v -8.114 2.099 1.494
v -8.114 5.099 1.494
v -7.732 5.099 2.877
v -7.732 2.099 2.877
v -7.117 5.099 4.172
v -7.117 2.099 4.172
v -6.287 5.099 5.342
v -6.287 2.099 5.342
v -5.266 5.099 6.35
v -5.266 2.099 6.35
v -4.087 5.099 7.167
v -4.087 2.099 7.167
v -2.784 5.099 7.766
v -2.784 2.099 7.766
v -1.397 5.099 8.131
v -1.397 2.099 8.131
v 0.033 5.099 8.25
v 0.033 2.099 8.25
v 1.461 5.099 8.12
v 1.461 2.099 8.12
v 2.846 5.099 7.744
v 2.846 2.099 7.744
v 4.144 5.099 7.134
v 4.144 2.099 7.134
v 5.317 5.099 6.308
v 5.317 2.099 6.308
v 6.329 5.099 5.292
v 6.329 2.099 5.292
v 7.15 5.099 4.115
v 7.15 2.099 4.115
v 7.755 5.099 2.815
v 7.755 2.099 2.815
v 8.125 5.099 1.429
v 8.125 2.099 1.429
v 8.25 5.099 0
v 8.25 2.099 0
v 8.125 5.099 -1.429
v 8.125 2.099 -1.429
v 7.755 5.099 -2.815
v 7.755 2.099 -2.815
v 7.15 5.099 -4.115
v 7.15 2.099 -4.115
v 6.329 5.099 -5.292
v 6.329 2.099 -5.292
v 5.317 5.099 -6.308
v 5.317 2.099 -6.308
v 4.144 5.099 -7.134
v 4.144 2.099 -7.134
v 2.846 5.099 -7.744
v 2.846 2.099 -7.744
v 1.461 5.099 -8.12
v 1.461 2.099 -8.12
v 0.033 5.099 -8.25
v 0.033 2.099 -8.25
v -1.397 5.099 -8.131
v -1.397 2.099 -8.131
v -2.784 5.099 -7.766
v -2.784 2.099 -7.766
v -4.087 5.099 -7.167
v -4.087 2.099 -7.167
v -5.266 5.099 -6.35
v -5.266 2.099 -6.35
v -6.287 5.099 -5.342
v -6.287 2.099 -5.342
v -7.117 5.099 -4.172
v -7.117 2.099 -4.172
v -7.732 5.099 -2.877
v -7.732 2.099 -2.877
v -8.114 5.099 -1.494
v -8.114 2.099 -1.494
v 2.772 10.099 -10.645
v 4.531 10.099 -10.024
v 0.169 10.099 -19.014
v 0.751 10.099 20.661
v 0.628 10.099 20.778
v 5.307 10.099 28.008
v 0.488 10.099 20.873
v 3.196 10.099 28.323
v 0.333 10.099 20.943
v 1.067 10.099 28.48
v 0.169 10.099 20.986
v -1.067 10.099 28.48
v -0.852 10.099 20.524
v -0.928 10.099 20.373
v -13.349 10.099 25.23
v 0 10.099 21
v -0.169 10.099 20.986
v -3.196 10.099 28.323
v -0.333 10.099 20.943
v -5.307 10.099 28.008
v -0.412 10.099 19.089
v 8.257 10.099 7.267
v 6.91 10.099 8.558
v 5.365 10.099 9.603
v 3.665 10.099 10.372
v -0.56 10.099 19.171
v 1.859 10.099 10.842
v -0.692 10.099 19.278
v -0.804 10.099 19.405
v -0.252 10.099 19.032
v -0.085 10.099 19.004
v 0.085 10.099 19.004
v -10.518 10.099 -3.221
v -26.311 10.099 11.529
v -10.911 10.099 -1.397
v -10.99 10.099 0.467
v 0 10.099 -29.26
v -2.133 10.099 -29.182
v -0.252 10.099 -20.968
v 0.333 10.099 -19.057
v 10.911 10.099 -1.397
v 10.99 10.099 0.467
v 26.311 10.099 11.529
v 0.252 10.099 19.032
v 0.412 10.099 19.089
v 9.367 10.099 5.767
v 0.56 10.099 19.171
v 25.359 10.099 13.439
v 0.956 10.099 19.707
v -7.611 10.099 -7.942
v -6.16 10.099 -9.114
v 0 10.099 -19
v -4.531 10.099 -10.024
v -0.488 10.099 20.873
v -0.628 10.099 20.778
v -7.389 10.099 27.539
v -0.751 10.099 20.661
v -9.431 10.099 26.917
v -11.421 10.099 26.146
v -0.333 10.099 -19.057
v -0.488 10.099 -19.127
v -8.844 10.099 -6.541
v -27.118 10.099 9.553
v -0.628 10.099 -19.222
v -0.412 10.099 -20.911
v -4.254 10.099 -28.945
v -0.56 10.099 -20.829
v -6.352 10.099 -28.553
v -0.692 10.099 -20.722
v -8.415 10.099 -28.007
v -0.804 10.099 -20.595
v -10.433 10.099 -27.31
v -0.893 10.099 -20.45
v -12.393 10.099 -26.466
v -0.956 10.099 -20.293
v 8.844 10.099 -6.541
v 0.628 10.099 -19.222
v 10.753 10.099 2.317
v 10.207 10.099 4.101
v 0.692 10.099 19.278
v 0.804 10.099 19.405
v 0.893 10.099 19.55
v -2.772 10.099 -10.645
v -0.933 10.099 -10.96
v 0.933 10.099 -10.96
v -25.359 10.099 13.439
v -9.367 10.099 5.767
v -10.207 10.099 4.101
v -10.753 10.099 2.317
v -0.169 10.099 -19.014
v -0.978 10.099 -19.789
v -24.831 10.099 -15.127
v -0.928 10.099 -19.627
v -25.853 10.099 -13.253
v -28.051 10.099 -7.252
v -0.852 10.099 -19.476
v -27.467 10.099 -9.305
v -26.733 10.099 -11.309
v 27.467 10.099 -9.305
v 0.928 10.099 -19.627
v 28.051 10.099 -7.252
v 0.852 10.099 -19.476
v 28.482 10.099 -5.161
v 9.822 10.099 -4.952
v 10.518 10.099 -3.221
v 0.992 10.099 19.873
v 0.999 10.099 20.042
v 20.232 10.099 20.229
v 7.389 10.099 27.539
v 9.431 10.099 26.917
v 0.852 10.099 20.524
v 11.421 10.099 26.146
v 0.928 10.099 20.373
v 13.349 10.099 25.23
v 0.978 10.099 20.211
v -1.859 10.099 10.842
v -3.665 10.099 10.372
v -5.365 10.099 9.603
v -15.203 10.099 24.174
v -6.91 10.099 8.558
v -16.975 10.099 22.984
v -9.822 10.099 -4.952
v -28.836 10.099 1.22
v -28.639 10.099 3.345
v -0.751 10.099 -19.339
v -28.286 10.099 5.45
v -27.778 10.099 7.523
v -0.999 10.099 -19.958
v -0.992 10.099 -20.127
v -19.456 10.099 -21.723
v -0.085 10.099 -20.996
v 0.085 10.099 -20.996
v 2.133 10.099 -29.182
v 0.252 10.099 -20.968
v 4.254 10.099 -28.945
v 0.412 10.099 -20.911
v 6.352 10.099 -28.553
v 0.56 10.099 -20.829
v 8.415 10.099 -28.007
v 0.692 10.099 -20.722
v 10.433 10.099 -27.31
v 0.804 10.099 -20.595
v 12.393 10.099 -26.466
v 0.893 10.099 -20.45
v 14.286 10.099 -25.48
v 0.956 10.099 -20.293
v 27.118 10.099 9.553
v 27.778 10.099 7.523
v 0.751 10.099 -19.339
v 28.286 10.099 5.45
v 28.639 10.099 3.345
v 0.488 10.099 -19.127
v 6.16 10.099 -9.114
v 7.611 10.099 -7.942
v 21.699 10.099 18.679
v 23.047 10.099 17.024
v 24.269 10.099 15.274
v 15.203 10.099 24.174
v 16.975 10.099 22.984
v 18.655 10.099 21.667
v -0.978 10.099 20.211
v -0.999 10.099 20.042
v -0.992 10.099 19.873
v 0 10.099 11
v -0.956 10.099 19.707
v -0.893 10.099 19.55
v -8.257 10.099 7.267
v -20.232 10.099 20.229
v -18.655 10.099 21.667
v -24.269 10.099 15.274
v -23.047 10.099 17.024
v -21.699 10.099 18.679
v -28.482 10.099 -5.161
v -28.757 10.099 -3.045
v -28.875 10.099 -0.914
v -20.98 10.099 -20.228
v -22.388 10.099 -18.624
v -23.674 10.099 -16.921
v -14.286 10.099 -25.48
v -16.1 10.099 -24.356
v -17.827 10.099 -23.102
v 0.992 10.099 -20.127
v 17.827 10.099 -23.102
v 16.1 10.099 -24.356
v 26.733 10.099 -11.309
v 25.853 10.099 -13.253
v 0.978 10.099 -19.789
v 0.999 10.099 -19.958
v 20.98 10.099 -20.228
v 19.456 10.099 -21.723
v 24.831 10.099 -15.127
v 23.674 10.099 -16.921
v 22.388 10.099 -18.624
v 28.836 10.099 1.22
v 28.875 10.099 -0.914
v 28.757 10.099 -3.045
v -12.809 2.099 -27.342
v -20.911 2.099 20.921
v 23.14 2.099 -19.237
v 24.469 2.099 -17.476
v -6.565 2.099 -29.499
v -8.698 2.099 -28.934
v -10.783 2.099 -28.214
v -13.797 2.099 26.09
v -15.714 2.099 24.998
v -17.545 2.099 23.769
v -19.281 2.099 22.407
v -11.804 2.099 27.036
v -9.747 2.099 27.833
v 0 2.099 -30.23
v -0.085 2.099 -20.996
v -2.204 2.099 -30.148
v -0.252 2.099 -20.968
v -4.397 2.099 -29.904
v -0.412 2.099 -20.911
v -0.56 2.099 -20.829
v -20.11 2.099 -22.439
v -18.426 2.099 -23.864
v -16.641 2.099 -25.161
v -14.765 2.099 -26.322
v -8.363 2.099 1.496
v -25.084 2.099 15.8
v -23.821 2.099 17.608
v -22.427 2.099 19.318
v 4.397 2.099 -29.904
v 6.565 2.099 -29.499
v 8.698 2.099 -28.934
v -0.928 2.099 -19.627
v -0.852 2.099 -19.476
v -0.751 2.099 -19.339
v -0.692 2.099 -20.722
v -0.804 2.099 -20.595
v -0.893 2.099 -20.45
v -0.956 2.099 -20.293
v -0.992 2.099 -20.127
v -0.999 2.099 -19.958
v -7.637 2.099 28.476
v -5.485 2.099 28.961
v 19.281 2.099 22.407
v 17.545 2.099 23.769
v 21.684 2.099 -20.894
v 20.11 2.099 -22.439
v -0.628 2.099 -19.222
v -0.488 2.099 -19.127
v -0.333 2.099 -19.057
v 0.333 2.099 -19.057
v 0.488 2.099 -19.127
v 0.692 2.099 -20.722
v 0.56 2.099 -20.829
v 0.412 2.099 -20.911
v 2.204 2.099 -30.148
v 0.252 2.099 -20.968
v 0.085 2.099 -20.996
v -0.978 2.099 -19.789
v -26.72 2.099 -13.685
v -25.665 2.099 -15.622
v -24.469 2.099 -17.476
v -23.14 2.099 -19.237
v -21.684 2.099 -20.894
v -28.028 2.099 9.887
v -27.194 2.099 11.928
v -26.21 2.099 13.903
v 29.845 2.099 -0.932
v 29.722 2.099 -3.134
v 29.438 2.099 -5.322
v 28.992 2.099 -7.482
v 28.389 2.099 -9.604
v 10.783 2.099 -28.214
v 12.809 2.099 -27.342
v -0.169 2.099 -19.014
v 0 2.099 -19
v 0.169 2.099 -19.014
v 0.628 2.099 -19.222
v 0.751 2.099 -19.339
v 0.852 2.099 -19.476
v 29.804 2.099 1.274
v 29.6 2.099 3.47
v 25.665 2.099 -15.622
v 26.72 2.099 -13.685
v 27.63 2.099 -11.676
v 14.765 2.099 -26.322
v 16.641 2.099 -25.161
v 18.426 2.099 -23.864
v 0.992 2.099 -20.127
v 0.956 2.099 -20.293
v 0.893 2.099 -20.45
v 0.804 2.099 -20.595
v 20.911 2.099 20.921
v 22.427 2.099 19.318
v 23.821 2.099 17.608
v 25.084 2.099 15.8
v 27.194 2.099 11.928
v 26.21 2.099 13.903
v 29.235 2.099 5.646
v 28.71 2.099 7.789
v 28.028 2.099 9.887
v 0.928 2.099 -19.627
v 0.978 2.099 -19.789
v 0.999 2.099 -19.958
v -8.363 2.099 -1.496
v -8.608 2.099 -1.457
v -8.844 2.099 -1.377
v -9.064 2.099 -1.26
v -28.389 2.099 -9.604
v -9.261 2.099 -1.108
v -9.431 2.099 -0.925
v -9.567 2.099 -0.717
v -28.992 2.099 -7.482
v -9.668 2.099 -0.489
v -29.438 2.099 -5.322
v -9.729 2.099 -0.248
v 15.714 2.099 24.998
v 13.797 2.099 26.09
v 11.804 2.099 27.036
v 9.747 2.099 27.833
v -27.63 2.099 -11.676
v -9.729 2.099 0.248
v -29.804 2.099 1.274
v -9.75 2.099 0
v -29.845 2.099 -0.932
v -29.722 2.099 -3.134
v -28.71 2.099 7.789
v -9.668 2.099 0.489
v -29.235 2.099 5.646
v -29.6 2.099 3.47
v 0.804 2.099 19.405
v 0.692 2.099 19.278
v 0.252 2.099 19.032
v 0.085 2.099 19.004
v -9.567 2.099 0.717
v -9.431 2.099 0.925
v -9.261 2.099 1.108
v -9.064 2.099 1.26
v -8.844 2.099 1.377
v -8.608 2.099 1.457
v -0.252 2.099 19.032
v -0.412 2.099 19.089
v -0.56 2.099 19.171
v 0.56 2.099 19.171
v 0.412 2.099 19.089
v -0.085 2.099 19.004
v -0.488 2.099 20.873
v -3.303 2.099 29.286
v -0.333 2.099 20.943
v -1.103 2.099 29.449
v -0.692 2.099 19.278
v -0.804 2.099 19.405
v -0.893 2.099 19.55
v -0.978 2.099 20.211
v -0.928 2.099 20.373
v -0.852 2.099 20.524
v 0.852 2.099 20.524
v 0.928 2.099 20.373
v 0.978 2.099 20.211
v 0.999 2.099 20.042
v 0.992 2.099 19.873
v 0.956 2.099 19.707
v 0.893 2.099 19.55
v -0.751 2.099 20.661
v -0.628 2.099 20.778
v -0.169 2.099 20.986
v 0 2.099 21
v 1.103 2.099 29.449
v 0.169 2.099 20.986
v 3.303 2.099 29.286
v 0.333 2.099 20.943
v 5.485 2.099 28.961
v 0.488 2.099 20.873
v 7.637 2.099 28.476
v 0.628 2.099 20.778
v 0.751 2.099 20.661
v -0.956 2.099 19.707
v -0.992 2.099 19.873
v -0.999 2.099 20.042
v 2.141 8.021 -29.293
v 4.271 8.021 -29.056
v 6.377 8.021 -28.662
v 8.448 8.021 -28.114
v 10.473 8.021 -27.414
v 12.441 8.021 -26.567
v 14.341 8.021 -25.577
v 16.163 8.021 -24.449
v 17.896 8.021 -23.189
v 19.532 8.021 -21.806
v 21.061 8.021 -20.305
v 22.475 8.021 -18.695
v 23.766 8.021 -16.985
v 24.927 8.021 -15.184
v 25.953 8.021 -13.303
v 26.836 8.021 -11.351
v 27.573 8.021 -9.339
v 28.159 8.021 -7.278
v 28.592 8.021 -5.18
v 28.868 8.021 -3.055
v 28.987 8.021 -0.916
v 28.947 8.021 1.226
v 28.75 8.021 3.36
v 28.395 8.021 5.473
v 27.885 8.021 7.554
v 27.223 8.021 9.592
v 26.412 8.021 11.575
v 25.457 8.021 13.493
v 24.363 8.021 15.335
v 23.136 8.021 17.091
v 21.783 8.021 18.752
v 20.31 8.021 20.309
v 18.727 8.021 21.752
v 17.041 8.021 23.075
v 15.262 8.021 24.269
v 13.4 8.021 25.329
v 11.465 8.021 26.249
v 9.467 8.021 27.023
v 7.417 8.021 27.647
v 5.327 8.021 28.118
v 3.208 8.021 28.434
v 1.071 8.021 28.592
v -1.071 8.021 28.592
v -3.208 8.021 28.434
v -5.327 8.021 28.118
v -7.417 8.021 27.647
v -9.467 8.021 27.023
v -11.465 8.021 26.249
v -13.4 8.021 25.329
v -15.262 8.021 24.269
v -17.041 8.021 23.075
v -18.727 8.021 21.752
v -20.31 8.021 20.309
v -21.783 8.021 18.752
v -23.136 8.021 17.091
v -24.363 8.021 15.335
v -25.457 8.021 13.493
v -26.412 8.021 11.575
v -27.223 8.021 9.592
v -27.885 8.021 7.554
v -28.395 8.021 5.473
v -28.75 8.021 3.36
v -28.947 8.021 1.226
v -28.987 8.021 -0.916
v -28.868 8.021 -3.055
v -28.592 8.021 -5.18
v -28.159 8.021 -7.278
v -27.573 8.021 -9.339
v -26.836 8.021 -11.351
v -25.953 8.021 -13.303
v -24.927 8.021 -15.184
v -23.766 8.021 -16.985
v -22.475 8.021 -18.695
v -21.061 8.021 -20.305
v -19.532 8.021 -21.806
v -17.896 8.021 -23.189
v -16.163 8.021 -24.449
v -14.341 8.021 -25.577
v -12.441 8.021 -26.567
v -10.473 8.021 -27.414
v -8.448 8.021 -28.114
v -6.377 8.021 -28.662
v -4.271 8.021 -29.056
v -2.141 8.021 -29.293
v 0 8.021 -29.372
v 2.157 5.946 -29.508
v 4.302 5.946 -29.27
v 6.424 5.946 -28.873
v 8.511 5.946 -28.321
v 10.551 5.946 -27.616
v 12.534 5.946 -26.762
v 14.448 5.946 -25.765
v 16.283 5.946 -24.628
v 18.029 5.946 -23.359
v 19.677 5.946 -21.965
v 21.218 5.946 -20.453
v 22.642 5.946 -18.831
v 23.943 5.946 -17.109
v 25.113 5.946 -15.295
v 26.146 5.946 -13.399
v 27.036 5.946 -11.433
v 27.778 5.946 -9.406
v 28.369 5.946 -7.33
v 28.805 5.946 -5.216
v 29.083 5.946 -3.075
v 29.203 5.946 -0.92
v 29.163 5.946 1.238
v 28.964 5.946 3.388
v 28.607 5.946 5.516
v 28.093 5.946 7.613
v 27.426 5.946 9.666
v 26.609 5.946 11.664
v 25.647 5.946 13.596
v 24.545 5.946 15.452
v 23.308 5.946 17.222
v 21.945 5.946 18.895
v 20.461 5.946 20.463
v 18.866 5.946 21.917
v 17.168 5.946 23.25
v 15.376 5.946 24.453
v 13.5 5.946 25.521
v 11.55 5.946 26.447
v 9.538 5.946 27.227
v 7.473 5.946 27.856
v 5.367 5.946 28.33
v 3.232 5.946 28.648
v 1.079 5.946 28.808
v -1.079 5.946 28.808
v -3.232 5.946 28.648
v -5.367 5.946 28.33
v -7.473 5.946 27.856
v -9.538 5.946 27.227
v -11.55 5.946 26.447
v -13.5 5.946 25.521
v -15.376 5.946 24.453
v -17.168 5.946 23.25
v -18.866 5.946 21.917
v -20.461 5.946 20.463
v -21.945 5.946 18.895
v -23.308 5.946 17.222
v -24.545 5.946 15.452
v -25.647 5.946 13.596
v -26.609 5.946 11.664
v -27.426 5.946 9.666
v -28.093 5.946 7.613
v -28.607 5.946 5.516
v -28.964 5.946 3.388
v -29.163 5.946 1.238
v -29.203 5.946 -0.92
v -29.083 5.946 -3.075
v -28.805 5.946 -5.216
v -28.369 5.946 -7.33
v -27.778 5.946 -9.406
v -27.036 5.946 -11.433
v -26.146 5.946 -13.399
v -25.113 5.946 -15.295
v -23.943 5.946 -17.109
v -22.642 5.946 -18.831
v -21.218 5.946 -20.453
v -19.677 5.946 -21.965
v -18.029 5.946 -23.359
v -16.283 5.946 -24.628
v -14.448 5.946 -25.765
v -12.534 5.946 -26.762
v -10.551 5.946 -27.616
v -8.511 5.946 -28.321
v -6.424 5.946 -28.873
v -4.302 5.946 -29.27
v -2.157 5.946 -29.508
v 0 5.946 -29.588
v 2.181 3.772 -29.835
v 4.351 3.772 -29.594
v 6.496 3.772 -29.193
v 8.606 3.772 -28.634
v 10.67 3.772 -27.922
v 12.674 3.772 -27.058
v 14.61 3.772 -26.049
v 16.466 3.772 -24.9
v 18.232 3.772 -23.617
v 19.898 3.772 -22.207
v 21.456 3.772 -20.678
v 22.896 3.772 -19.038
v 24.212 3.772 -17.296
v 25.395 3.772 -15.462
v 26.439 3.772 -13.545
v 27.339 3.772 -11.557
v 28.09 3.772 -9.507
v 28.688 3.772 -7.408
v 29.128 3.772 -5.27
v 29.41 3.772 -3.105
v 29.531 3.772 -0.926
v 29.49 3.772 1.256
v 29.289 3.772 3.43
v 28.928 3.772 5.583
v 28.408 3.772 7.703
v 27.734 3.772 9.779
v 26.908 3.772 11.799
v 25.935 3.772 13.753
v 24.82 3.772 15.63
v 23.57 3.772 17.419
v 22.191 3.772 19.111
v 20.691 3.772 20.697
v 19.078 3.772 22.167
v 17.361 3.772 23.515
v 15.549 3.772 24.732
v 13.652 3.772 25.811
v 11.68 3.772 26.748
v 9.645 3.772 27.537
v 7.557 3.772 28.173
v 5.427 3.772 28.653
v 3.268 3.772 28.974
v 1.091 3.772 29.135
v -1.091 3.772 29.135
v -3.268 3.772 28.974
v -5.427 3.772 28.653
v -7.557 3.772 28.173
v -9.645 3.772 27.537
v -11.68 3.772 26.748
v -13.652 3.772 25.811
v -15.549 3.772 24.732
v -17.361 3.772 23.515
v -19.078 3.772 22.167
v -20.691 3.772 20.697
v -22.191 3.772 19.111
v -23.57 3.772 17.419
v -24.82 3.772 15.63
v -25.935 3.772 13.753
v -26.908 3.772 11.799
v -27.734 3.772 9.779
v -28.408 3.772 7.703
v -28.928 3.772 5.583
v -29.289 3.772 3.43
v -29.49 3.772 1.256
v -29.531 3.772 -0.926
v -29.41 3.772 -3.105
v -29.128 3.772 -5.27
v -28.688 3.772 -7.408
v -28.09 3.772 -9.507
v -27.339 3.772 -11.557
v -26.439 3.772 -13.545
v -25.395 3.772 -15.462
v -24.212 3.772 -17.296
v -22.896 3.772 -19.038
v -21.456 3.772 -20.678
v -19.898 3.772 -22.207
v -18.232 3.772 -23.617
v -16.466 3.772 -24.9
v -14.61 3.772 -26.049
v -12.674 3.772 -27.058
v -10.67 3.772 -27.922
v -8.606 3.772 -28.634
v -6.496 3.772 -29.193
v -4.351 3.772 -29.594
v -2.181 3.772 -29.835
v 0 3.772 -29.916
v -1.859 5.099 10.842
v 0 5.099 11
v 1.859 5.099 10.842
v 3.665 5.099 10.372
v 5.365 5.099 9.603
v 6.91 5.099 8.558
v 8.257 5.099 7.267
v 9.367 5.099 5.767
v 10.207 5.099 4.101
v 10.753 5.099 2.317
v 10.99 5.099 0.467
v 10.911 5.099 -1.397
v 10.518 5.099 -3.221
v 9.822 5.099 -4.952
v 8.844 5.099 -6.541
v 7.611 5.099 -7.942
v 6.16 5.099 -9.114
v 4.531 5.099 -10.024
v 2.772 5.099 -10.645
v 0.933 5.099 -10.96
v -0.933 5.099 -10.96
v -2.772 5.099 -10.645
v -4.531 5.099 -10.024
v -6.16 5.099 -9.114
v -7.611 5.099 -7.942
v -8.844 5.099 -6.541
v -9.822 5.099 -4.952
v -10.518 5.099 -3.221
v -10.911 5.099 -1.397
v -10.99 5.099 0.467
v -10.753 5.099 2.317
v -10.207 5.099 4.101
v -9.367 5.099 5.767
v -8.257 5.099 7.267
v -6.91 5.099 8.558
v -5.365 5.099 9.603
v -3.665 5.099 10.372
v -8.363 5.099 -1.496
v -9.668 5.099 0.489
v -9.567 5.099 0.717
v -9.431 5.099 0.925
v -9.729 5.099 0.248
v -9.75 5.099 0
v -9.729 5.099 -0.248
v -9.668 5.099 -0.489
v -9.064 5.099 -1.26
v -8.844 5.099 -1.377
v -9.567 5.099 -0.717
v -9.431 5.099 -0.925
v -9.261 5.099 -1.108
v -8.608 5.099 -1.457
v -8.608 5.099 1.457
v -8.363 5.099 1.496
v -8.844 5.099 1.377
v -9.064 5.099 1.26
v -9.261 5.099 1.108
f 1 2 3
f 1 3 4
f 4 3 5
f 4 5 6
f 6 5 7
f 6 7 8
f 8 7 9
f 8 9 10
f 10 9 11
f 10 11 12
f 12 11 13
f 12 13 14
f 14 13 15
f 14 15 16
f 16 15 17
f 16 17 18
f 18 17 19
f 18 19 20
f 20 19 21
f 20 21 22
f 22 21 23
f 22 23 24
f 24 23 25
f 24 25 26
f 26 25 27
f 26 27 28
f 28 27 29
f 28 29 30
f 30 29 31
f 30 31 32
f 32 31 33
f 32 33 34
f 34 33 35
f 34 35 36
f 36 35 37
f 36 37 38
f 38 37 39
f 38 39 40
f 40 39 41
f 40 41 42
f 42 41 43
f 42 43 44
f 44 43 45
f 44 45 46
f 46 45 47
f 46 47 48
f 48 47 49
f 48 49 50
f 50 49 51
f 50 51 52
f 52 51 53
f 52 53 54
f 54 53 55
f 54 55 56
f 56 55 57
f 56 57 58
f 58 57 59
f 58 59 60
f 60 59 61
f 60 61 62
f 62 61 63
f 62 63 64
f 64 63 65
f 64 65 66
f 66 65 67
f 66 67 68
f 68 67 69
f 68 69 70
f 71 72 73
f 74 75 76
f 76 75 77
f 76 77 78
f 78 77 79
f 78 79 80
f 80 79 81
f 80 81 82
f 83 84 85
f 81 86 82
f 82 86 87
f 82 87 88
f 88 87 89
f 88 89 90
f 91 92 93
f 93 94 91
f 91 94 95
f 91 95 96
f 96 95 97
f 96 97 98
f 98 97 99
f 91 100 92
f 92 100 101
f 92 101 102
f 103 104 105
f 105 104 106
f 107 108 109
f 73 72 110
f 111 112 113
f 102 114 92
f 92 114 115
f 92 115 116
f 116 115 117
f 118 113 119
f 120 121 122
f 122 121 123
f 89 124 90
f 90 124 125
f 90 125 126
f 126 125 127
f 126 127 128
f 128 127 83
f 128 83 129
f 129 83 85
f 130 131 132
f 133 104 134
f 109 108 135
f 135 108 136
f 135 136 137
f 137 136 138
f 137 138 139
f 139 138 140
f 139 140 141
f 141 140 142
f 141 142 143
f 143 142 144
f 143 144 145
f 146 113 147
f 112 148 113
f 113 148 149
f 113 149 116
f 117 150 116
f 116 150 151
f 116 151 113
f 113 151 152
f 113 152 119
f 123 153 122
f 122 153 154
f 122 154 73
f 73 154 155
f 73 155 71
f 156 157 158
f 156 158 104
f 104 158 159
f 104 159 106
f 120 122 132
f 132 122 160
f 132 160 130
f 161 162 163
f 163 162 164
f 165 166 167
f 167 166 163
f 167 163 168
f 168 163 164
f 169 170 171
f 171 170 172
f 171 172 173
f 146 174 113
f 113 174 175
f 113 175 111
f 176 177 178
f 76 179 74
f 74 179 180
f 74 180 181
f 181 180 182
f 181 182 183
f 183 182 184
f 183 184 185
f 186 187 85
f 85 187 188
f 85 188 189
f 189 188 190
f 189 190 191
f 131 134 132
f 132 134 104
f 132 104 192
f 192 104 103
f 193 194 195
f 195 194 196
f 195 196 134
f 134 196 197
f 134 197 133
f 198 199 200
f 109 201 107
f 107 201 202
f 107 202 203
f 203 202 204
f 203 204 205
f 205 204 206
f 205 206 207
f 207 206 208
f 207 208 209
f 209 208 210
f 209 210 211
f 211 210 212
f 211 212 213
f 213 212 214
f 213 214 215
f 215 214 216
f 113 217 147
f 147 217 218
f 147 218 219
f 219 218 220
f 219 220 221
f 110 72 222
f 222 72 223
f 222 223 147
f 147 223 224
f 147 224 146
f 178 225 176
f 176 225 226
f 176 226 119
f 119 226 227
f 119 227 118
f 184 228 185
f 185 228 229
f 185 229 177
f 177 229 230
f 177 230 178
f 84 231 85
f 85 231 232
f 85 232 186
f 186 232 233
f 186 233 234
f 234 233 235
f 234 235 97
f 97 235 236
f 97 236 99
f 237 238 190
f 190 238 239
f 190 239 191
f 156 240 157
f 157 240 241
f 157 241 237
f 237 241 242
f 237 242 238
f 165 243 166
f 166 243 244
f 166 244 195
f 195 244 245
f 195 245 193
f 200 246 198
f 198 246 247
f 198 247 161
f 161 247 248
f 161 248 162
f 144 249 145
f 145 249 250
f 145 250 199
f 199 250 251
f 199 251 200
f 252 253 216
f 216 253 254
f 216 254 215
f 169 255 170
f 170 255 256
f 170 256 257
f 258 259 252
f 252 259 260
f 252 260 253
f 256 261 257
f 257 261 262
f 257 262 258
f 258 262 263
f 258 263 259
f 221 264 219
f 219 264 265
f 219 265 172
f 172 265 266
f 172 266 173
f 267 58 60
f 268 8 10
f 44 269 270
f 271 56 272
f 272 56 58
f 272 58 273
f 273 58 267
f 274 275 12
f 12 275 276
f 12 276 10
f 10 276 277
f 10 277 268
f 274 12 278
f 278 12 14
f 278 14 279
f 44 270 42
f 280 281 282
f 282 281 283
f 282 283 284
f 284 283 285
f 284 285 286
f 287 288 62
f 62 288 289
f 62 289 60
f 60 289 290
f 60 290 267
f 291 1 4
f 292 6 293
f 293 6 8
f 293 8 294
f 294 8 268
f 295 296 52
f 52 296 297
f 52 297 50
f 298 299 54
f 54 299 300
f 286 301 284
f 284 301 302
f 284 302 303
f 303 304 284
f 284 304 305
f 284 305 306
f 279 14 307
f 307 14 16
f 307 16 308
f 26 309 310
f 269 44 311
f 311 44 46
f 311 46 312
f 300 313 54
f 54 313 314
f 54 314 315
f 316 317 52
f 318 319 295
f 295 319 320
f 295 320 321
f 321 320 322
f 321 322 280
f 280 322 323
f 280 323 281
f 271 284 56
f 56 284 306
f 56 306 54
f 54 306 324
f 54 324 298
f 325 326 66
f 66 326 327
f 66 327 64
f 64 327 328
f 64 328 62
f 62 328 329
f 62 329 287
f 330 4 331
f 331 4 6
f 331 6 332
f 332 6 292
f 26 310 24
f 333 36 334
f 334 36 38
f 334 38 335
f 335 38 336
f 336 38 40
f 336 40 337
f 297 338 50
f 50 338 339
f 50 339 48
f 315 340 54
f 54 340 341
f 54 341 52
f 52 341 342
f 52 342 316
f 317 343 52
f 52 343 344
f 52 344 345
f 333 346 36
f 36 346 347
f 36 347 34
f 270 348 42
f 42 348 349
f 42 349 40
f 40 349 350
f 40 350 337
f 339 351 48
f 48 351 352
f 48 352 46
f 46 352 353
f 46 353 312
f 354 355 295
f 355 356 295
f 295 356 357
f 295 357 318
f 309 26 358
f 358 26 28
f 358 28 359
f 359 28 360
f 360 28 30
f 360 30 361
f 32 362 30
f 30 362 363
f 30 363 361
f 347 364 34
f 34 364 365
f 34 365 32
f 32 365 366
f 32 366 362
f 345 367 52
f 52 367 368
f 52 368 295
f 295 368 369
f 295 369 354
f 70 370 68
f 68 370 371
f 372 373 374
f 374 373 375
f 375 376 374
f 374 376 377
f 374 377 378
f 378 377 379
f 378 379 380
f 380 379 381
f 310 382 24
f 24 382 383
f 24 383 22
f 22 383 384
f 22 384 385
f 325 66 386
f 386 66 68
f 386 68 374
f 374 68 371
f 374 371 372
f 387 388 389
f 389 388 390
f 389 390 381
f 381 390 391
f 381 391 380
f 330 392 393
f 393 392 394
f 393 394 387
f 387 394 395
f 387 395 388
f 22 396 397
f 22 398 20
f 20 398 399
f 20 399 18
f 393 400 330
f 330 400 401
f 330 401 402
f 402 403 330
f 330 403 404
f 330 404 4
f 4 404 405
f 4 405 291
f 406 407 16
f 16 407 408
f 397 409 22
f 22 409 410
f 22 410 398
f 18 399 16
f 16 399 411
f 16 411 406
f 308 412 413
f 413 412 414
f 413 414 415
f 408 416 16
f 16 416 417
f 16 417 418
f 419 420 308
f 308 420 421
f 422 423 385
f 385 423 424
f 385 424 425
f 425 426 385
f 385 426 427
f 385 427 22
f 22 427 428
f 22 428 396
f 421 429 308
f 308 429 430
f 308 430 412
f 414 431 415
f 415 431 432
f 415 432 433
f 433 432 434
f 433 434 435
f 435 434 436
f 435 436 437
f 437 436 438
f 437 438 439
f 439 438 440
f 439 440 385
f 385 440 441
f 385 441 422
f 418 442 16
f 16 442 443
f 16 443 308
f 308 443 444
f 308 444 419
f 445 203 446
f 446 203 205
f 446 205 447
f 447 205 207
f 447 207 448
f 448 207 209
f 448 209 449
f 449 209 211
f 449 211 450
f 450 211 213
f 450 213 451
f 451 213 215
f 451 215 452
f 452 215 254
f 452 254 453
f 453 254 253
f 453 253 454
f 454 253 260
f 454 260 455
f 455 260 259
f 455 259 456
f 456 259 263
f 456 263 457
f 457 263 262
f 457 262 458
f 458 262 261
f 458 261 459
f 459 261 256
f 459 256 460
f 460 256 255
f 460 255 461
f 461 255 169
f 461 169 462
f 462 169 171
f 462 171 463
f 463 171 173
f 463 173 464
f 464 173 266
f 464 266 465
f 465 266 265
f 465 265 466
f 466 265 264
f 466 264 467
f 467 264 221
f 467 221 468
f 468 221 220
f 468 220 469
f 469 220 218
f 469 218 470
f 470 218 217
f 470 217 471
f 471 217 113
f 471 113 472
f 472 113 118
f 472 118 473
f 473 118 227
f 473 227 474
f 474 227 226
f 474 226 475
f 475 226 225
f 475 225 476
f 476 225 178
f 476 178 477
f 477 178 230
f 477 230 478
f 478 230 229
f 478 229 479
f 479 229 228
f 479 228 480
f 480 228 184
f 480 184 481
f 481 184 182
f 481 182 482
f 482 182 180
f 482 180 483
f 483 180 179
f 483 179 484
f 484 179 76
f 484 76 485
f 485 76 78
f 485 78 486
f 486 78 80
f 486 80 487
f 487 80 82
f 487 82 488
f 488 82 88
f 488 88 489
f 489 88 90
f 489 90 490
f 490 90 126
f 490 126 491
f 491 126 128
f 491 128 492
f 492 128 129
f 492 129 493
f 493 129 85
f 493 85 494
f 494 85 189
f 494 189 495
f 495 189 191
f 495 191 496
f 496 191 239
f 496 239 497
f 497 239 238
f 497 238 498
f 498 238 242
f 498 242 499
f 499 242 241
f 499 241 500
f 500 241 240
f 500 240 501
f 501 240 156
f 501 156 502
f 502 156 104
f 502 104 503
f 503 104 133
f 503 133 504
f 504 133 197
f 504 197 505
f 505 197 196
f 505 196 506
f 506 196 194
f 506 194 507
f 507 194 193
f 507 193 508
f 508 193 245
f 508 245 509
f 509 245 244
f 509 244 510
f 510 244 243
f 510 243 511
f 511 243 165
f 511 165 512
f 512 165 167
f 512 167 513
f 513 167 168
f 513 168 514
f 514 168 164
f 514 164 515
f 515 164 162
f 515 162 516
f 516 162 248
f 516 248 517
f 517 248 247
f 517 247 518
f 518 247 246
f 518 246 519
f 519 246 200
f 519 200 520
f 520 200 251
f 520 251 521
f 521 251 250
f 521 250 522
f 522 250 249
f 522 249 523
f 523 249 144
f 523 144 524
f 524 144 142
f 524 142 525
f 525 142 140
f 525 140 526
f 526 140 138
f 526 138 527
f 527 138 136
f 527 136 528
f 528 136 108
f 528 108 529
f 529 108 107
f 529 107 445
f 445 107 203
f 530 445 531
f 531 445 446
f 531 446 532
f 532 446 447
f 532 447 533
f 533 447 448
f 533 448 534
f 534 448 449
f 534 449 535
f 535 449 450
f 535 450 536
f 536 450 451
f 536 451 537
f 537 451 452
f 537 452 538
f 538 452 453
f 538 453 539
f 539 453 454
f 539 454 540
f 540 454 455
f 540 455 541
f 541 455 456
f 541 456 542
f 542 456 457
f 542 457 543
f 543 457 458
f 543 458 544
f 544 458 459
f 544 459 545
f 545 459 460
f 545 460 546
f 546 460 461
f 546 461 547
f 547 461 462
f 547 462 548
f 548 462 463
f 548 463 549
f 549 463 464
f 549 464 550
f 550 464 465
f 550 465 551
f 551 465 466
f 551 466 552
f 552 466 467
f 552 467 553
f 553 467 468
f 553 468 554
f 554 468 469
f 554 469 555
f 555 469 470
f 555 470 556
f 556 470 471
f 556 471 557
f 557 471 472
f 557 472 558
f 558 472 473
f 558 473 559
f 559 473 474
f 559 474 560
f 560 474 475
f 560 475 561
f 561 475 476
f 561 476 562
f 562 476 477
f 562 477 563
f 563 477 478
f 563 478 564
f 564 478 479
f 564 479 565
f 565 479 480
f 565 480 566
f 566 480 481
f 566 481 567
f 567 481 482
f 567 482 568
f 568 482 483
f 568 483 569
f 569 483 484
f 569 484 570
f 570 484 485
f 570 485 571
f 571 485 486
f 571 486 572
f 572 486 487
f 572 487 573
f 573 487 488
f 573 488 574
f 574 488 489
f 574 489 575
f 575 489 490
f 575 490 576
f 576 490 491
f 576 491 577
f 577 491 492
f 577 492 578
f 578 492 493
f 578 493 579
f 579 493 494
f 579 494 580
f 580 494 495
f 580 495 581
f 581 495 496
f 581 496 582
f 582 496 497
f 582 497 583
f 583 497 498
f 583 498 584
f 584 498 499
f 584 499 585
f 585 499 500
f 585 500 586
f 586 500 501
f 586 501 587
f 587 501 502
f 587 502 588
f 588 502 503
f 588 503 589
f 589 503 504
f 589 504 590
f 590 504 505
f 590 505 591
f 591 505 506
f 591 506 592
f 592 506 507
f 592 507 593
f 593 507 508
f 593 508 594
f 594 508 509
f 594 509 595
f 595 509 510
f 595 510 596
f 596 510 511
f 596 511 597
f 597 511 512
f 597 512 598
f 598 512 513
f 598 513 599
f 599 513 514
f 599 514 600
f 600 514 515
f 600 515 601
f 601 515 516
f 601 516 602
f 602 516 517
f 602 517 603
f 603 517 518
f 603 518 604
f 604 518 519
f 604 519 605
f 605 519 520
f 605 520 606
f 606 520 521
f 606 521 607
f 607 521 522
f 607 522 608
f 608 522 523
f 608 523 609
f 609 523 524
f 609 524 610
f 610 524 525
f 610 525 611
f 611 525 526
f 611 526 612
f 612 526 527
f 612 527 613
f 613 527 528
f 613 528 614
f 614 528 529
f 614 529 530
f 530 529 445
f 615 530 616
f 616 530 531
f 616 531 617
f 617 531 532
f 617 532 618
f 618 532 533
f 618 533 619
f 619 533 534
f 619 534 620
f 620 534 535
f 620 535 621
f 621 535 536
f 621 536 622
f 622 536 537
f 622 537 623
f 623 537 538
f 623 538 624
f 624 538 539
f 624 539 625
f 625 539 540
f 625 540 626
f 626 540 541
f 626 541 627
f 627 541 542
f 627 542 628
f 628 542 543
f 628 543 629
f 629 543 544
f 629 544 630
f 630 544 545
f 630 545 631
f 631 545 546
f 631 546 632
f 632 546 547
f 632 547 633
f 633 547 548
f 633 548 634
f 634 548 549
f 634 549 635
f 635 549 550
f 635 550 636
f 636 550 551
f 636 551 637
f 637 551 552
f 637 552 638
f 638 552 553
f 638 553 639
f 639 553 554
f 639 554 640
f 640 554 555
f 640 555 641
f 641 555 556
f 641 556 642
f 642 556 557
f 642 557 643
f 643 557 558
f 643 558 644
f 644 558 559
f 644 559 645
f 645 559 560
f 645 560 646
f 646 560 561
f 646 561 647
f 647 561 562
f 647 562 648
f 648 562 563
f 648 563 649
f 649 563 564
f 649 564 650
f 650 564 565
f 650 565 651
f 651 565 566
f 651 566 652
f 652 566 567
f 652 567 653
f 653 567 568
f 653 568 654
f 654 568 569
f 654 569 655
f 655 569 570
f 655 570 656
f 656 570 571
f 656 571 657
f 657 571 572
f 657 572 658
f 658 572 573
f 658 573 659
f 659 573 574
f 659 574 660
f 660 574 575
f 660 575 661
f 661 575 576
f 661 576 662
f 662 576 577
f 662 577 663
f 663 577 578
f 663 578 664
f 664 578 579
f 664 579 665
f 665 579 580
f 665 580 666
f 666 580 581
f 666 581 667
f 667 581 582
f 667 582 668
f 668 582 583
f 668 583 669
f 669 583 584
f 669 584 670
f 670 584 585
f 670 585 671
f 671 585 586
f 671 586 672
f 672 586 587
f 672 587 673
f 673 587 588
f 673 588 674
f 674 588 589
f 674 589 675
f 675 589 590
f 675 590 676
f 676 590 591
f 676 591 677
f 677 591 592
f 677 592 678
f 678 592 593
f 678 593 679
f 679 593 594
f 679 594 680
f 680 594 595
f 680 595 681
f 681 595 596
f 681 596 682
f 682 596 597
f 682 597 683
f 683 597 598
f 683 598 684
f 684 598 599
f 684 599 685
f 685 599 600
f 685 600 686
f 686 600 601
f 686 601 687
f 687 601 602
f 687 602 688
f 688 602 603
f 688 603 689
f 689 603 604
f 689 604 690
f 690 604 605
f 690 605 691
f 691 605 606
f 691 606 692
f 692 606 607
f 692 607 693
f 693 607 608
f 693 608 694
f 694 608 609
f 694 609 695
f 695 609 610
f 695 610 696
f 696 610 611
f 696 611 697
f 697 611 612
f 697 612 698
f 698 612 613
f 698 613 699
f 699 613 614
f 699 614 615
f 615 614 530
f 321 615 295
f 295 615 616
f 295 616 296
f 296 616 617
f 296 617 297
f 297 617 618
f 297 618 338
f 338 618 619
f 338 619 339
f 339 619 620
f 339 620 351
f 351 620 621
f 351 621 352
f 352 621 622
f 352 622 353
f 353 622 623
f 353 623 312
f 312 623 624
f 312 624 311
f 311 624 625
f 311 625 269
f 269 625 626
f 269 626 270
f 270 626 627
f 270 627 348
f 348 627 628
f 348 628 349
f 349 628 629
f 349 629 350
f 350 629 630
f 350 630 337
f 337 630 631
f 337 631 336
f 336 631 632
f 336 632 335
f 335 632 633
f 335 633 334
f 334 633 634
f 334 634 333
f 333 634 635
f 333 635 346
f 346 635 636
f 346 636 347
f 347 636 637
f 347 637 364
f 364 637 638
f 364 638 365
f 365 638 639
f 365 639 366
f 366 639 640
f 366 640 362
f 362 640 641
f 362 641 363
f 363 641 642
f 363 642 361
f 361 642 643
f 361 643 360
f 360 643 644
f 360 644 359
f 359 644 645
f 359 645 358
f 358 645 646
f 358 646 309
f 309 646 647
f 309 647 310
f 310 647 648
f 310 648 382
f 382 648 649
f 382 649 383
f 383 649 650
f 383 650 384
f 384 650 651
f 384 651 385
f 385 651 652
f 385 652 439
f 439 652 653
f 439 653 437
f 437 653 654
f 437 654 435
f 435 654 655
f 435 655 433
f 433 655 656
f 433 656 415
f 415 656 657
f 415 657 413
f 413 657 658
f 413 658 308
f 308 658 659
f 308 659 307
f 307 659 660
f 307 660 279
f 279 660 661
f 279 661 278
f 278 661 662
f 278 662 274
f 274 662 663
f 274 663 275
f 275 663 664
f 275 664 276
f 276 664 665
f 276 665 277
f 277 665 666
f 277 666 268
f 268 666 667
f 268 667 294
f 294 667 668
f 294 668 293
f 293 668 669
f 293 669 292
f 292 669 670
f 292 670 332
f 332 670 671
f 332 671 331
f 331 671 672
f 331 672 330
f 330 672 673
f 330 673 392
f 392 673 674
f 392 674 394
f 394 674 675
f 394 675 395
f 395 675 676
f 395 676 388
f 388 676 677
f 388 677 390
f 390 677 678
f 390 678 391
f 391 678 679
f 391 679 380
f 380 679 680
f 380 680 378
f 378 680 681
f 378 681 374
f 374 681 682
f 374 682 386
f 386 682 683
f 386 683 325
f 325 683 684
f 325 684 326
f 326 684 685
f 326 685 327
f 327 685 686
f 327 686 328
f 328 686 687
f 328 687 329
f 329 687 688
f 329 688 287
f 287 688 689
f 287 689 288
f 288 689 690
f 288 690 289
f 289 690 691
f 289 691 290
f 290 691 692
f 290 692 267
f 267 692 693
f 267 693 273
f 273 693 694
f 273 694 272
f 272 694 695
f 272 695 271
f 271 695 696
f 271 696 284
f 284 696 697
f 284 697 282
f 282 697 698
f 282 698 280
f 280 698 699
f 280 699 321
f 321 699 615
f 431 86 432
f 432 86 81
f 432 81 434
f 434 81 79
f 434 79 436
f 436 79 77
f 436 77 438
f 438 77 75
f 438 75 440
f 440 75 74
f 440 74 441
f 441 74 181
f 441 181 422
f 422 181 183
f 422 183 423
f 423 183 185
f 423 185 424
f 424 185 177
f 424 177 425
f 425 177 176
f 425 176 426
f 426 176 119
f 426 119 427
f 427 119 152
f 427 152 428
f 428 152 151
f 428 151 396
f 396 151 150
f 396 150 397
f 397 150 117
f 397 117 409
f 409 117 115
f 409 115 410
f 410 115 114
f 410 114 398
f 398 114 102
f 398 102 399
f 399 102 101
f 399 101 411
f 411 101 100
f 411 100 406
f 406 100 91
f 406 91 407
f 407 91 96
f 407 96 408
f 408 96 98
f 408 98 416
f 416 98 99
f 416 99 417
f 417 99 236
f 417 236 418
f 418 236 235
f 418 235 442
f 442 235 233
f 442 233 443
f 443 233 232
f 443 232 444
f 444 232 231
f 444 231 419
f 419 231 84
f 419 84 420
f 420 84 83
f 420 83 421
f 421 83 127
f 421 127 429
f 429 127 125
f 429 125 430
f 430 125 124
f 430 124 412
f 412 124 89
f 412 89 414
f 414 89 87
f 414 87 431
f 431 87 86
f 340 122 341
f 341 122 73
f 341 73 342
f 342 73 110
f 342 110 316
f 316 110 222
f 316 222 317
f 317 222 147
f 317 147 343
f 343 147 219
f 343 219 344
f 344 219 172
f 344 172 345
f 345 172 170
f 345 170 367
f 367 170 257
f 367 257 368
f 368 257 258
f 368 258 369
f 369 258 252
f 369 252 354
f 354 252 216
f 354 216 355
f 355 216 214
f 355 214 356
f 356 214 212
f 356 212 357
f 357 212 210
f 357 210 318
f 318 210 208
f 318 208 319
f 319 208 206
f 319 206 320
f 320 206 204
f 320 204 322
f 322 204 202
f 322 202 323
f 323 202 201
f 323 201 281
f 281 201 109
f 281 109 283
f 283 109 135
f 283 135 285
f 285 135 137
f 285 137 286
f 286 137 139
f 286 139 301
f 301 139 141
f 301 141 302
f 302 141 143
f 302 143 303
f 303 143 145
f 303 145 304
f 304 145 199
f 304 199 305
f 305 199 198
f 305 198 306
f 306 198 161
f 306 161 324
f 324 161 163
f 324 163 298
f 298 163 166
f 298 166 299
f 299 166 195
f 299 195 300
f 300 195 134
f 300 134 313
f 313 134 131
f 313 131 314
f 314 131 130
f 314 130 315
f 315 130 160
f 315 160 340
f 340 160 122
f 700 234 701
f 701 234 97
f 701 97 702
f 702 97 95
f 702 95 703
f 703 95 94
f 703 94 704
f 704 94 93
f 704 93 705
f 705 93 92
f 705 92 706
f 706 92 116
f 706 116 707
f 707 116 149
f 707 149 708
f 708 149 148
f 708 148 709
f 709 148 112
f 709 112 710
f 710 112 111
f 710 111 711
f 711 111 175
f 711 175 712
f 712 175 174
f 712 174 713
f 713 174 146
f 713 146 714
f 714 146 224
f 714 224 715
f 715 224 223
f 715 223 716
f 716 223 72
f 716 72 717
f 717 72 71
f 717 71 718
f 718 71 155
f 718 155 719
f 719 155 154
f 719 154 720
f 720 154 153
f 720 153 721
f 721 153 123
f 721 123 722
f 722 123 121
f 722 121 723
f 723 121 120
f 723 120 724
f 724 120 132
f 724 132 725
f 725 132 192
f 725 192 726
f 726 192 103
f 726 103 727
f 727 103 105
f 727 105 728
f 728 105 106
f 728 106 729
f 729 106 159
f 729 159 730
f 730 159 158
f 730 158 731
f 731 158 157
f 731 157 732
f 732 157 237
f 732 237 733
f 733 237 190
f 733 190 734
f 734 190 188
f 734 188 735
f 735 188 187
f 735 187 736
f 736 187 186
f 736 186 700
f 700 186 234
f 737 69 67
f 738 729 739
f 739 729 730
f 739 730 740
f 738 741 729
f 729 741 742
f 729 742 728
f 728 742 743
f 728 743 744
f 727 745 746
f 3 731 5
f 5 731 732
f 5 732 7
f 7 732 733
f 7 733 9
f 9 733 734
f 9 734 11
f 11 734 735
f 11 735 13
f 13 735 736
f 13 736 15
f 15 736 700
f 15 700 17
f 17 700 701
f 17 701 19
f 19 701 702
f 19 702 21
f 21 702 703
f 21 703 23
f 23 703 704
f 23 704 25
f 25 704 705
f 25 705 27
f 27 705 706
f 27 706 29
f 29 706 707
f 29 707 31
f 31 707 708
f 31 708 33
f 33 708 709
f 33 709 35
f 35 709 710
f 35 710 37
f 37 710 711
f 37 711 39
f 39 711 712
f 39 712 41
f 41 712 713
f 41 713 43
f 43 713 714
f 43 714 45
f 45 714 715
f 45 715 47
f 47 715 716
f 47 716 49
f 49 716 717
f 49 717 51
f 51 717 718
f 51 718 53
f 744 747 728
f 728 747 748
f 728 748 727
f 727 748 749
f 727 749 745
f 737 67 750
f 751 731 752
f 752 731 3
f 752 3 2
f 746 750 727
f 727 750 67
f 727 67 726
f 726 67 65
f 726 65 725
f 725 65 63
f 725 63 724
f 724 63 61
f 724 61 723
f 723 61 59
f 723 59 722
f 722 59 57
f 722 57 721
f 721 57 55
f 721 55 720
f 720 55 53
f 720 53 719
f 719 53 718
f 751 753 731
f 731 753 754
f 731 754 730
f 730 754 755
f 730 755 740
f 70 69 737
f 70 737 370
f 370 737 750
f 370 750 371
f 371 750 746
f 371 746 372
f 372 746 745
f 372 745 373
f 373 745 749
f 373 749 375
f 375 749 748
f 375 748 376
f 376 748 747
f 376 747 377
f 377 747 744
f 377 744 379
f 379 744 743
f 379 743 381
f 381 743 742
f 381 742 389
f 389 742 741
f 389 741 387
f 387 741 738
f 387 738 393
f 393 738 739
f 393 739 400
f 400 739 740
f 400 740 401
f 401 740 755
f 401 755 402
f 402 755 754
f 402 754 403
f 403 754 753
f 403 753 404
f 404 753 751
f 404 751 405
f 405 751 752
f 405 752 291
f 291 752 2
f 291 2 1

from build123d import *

# Parameters (mm, degrees)
SCHNITT_LINEAR_AUSTRAGEN3_REACH = 45.23
SKIZZE3_R                       = 1
SCHNITT_LINEAR_AUSTRAGEN4_REACH = 45.23
SKIZZE3_4_R                     = 11
SCHNITT_LINEAR_AUSTRAGEN5_DEPTH = 5
SCHNITT_LINEAR_AUSTRAGEN6_REACH = 45.23
SKIZZE3_5_R                     = 1.5


with BuildPart() as part:
    # Skizze1 → Rotation2 (revolve)
    with BuildSketch(Plane(origin=(0, 0, 0), x_dir=(0, 0, -1), z_dir=(1, 0, 0))):
        with BuildLine():
            Line((0.380209453, 2.098852641), (30.229832566, 2.098852641))
            add(Edge.make_bspline(
                [(29.260449341, 10.098852641), (29.33429968, 7.417548621), (29.681552607, 4.815540148), (30.229832566, 2.098852641)],
                knots=[0.538089657, 0.538089657, 0.538089657, 0.538089657, 1, 1, 1, 1], degree=3))
            Line((29.260449341, 10.098852641), (0.380209453, 10.098852641))
            Line((0.380209453, 10.098852641), (0.380209453, 5.098852641))
            Line((0.380209453, 5.098852641), (0.380209453, 2.098852641))
        make_face()
    revolve(axis=Axis((0, 5.098852641, -0.380209453), (0, 1, 0)))

    # Skizze3 → Schnitt-Linear austragen3 (cut, up to next)
    with BuildSketch(Plane(origin=(0, 10.098852641, 0), x_dir=(1, 0, 0), z_dir=(0, 1, 0)), mode=Mode.PRIVATE) as schnitt_linear_austragen3_sk1:
        with Locations((0, 20)):
            Circle(SKIZZE3_R)
    schnitt_linear_austragen3_tool1 = extrude(schnitt_linear_austragen3_sk1.sketch, amount=-SCHNITT_LINEAR_AUSTRAGEN3_REACH, mode=Mode.PRIVATE) & part.part
    # Skizze3 → Schnitt-Linear austragen3 (cut, up to next)
    with BuildSketch(Plane(origin=(0, 10.098852641, 0), x_dir=(1, 0, 0), z_dir=(0, 1, 0)), mode=Mode.PRIVATE) as schnitt_linear_austragen3_sk2:
        with Locations((0, -20)):
            Circle(SKIZZE3_R)
    schnitt_linear_austragen3_tool2 = extrude(schnitt_linear_austragen3_sk2.sketch, amount=-SCHNITT_LINEAR_AUSTRAGEN3_REACH, mode=Mode.PRIVATE) & part.part
    add(schnitt_linear_austragen3_tool1.solids().sort_by_distance((0, 10.098853, -20))[0], mode=Mode.SUBTRACT)
    add(schnitt_linear_austragen3_tool2.solids().sort_by_distance((0, 10.098853, 20))[0], mode=Mode.SUBTRACT)

    # Skizze3<3> → Schnitt-Linear austragen4 (cut, up to next)
    with BuildSketch(Plane(origin=(0, 10.098852641, 0), x_dir=(1, 0, 0), z_dir=(0, 1, 0)), mode=Mode.PRIVATE) as schnitt_linear_austragen4_sk1:
        with BuildLine():
            ThreePointArc((-8.113636364, -1.493788793), (8.25, 0), (-8.113636364, 1.493788793))
            ThreePointArc((-8.113636364, 1.493788793), (-6.75, 0), (-8.113636364, -1.493788793))
        make_face()
    schnitt_linear_austragen4_tool1 = extrude(schnitt_linear_austragen4_sk1.sketch, amount=-SCHNITT_LINEAR_AUSTRAGEN4_REACH, mode=Mode.PRIVATE) & part.part
    add(schnitt_linear_austragen4_tool1.solids().sort_by_distance((0.122549, 10.098853, 0))[0], mode=Mode.SUBTRACT)

    # Skizze3<4> → Schnitt-Linear austragen5 (cut)
    with BuildSketch(Plane(origin=(0, 10.098852641, 0), x_dir=(1, 0, 0), z_dir=(0, 1, 0))):
        Circle(SKIZZE3_4_R)
        with BuildLine():
            ThreePointArc((-8.113636364, -1.493788793), (-9.75, 0), (-8.113636364, 1.493788793))
            ThreePointArc((-8.113636364, 1.493788793), (8.25, 0), (-8.113636364, -1.493788793))
        make_face(mode=Mode.SUBTRACT)
    extrude(amount=-SCHNITT_LINEAR_AUSTRAGEN5_DEPTH, mode=Mode.SUBTRACT)

    # Skizze3<5> → Schnitt-Linear austragen6 (cut, up to next)
    with BuildSketch(Plane(origin=(0, 10.098852641, 0), x_dir=(1, 0, 0), z_dir=(0, 1, 0)), mode=Mode.PRIVATE) as schnitt_linear_austragen6_sk1:
        with Locations((-8.25, 0)):
            Circle(SKIZZE3_5_R)
    schnitt_linear_austragen6_tool1 = extrude(schnitt_linear_austragen6_sk1.sketch, amount=-SCHNITT_LINEAR_AUSTRAGEN6_REACH, mode=Mode.PRIVATE) & part.part
    add(schnitt_linear_austragen6_tool1.solids().sort_by_distance((-8.25, 10.098853, 0))[0], mode=Mode.SUBTRACT)


solid = part.part
